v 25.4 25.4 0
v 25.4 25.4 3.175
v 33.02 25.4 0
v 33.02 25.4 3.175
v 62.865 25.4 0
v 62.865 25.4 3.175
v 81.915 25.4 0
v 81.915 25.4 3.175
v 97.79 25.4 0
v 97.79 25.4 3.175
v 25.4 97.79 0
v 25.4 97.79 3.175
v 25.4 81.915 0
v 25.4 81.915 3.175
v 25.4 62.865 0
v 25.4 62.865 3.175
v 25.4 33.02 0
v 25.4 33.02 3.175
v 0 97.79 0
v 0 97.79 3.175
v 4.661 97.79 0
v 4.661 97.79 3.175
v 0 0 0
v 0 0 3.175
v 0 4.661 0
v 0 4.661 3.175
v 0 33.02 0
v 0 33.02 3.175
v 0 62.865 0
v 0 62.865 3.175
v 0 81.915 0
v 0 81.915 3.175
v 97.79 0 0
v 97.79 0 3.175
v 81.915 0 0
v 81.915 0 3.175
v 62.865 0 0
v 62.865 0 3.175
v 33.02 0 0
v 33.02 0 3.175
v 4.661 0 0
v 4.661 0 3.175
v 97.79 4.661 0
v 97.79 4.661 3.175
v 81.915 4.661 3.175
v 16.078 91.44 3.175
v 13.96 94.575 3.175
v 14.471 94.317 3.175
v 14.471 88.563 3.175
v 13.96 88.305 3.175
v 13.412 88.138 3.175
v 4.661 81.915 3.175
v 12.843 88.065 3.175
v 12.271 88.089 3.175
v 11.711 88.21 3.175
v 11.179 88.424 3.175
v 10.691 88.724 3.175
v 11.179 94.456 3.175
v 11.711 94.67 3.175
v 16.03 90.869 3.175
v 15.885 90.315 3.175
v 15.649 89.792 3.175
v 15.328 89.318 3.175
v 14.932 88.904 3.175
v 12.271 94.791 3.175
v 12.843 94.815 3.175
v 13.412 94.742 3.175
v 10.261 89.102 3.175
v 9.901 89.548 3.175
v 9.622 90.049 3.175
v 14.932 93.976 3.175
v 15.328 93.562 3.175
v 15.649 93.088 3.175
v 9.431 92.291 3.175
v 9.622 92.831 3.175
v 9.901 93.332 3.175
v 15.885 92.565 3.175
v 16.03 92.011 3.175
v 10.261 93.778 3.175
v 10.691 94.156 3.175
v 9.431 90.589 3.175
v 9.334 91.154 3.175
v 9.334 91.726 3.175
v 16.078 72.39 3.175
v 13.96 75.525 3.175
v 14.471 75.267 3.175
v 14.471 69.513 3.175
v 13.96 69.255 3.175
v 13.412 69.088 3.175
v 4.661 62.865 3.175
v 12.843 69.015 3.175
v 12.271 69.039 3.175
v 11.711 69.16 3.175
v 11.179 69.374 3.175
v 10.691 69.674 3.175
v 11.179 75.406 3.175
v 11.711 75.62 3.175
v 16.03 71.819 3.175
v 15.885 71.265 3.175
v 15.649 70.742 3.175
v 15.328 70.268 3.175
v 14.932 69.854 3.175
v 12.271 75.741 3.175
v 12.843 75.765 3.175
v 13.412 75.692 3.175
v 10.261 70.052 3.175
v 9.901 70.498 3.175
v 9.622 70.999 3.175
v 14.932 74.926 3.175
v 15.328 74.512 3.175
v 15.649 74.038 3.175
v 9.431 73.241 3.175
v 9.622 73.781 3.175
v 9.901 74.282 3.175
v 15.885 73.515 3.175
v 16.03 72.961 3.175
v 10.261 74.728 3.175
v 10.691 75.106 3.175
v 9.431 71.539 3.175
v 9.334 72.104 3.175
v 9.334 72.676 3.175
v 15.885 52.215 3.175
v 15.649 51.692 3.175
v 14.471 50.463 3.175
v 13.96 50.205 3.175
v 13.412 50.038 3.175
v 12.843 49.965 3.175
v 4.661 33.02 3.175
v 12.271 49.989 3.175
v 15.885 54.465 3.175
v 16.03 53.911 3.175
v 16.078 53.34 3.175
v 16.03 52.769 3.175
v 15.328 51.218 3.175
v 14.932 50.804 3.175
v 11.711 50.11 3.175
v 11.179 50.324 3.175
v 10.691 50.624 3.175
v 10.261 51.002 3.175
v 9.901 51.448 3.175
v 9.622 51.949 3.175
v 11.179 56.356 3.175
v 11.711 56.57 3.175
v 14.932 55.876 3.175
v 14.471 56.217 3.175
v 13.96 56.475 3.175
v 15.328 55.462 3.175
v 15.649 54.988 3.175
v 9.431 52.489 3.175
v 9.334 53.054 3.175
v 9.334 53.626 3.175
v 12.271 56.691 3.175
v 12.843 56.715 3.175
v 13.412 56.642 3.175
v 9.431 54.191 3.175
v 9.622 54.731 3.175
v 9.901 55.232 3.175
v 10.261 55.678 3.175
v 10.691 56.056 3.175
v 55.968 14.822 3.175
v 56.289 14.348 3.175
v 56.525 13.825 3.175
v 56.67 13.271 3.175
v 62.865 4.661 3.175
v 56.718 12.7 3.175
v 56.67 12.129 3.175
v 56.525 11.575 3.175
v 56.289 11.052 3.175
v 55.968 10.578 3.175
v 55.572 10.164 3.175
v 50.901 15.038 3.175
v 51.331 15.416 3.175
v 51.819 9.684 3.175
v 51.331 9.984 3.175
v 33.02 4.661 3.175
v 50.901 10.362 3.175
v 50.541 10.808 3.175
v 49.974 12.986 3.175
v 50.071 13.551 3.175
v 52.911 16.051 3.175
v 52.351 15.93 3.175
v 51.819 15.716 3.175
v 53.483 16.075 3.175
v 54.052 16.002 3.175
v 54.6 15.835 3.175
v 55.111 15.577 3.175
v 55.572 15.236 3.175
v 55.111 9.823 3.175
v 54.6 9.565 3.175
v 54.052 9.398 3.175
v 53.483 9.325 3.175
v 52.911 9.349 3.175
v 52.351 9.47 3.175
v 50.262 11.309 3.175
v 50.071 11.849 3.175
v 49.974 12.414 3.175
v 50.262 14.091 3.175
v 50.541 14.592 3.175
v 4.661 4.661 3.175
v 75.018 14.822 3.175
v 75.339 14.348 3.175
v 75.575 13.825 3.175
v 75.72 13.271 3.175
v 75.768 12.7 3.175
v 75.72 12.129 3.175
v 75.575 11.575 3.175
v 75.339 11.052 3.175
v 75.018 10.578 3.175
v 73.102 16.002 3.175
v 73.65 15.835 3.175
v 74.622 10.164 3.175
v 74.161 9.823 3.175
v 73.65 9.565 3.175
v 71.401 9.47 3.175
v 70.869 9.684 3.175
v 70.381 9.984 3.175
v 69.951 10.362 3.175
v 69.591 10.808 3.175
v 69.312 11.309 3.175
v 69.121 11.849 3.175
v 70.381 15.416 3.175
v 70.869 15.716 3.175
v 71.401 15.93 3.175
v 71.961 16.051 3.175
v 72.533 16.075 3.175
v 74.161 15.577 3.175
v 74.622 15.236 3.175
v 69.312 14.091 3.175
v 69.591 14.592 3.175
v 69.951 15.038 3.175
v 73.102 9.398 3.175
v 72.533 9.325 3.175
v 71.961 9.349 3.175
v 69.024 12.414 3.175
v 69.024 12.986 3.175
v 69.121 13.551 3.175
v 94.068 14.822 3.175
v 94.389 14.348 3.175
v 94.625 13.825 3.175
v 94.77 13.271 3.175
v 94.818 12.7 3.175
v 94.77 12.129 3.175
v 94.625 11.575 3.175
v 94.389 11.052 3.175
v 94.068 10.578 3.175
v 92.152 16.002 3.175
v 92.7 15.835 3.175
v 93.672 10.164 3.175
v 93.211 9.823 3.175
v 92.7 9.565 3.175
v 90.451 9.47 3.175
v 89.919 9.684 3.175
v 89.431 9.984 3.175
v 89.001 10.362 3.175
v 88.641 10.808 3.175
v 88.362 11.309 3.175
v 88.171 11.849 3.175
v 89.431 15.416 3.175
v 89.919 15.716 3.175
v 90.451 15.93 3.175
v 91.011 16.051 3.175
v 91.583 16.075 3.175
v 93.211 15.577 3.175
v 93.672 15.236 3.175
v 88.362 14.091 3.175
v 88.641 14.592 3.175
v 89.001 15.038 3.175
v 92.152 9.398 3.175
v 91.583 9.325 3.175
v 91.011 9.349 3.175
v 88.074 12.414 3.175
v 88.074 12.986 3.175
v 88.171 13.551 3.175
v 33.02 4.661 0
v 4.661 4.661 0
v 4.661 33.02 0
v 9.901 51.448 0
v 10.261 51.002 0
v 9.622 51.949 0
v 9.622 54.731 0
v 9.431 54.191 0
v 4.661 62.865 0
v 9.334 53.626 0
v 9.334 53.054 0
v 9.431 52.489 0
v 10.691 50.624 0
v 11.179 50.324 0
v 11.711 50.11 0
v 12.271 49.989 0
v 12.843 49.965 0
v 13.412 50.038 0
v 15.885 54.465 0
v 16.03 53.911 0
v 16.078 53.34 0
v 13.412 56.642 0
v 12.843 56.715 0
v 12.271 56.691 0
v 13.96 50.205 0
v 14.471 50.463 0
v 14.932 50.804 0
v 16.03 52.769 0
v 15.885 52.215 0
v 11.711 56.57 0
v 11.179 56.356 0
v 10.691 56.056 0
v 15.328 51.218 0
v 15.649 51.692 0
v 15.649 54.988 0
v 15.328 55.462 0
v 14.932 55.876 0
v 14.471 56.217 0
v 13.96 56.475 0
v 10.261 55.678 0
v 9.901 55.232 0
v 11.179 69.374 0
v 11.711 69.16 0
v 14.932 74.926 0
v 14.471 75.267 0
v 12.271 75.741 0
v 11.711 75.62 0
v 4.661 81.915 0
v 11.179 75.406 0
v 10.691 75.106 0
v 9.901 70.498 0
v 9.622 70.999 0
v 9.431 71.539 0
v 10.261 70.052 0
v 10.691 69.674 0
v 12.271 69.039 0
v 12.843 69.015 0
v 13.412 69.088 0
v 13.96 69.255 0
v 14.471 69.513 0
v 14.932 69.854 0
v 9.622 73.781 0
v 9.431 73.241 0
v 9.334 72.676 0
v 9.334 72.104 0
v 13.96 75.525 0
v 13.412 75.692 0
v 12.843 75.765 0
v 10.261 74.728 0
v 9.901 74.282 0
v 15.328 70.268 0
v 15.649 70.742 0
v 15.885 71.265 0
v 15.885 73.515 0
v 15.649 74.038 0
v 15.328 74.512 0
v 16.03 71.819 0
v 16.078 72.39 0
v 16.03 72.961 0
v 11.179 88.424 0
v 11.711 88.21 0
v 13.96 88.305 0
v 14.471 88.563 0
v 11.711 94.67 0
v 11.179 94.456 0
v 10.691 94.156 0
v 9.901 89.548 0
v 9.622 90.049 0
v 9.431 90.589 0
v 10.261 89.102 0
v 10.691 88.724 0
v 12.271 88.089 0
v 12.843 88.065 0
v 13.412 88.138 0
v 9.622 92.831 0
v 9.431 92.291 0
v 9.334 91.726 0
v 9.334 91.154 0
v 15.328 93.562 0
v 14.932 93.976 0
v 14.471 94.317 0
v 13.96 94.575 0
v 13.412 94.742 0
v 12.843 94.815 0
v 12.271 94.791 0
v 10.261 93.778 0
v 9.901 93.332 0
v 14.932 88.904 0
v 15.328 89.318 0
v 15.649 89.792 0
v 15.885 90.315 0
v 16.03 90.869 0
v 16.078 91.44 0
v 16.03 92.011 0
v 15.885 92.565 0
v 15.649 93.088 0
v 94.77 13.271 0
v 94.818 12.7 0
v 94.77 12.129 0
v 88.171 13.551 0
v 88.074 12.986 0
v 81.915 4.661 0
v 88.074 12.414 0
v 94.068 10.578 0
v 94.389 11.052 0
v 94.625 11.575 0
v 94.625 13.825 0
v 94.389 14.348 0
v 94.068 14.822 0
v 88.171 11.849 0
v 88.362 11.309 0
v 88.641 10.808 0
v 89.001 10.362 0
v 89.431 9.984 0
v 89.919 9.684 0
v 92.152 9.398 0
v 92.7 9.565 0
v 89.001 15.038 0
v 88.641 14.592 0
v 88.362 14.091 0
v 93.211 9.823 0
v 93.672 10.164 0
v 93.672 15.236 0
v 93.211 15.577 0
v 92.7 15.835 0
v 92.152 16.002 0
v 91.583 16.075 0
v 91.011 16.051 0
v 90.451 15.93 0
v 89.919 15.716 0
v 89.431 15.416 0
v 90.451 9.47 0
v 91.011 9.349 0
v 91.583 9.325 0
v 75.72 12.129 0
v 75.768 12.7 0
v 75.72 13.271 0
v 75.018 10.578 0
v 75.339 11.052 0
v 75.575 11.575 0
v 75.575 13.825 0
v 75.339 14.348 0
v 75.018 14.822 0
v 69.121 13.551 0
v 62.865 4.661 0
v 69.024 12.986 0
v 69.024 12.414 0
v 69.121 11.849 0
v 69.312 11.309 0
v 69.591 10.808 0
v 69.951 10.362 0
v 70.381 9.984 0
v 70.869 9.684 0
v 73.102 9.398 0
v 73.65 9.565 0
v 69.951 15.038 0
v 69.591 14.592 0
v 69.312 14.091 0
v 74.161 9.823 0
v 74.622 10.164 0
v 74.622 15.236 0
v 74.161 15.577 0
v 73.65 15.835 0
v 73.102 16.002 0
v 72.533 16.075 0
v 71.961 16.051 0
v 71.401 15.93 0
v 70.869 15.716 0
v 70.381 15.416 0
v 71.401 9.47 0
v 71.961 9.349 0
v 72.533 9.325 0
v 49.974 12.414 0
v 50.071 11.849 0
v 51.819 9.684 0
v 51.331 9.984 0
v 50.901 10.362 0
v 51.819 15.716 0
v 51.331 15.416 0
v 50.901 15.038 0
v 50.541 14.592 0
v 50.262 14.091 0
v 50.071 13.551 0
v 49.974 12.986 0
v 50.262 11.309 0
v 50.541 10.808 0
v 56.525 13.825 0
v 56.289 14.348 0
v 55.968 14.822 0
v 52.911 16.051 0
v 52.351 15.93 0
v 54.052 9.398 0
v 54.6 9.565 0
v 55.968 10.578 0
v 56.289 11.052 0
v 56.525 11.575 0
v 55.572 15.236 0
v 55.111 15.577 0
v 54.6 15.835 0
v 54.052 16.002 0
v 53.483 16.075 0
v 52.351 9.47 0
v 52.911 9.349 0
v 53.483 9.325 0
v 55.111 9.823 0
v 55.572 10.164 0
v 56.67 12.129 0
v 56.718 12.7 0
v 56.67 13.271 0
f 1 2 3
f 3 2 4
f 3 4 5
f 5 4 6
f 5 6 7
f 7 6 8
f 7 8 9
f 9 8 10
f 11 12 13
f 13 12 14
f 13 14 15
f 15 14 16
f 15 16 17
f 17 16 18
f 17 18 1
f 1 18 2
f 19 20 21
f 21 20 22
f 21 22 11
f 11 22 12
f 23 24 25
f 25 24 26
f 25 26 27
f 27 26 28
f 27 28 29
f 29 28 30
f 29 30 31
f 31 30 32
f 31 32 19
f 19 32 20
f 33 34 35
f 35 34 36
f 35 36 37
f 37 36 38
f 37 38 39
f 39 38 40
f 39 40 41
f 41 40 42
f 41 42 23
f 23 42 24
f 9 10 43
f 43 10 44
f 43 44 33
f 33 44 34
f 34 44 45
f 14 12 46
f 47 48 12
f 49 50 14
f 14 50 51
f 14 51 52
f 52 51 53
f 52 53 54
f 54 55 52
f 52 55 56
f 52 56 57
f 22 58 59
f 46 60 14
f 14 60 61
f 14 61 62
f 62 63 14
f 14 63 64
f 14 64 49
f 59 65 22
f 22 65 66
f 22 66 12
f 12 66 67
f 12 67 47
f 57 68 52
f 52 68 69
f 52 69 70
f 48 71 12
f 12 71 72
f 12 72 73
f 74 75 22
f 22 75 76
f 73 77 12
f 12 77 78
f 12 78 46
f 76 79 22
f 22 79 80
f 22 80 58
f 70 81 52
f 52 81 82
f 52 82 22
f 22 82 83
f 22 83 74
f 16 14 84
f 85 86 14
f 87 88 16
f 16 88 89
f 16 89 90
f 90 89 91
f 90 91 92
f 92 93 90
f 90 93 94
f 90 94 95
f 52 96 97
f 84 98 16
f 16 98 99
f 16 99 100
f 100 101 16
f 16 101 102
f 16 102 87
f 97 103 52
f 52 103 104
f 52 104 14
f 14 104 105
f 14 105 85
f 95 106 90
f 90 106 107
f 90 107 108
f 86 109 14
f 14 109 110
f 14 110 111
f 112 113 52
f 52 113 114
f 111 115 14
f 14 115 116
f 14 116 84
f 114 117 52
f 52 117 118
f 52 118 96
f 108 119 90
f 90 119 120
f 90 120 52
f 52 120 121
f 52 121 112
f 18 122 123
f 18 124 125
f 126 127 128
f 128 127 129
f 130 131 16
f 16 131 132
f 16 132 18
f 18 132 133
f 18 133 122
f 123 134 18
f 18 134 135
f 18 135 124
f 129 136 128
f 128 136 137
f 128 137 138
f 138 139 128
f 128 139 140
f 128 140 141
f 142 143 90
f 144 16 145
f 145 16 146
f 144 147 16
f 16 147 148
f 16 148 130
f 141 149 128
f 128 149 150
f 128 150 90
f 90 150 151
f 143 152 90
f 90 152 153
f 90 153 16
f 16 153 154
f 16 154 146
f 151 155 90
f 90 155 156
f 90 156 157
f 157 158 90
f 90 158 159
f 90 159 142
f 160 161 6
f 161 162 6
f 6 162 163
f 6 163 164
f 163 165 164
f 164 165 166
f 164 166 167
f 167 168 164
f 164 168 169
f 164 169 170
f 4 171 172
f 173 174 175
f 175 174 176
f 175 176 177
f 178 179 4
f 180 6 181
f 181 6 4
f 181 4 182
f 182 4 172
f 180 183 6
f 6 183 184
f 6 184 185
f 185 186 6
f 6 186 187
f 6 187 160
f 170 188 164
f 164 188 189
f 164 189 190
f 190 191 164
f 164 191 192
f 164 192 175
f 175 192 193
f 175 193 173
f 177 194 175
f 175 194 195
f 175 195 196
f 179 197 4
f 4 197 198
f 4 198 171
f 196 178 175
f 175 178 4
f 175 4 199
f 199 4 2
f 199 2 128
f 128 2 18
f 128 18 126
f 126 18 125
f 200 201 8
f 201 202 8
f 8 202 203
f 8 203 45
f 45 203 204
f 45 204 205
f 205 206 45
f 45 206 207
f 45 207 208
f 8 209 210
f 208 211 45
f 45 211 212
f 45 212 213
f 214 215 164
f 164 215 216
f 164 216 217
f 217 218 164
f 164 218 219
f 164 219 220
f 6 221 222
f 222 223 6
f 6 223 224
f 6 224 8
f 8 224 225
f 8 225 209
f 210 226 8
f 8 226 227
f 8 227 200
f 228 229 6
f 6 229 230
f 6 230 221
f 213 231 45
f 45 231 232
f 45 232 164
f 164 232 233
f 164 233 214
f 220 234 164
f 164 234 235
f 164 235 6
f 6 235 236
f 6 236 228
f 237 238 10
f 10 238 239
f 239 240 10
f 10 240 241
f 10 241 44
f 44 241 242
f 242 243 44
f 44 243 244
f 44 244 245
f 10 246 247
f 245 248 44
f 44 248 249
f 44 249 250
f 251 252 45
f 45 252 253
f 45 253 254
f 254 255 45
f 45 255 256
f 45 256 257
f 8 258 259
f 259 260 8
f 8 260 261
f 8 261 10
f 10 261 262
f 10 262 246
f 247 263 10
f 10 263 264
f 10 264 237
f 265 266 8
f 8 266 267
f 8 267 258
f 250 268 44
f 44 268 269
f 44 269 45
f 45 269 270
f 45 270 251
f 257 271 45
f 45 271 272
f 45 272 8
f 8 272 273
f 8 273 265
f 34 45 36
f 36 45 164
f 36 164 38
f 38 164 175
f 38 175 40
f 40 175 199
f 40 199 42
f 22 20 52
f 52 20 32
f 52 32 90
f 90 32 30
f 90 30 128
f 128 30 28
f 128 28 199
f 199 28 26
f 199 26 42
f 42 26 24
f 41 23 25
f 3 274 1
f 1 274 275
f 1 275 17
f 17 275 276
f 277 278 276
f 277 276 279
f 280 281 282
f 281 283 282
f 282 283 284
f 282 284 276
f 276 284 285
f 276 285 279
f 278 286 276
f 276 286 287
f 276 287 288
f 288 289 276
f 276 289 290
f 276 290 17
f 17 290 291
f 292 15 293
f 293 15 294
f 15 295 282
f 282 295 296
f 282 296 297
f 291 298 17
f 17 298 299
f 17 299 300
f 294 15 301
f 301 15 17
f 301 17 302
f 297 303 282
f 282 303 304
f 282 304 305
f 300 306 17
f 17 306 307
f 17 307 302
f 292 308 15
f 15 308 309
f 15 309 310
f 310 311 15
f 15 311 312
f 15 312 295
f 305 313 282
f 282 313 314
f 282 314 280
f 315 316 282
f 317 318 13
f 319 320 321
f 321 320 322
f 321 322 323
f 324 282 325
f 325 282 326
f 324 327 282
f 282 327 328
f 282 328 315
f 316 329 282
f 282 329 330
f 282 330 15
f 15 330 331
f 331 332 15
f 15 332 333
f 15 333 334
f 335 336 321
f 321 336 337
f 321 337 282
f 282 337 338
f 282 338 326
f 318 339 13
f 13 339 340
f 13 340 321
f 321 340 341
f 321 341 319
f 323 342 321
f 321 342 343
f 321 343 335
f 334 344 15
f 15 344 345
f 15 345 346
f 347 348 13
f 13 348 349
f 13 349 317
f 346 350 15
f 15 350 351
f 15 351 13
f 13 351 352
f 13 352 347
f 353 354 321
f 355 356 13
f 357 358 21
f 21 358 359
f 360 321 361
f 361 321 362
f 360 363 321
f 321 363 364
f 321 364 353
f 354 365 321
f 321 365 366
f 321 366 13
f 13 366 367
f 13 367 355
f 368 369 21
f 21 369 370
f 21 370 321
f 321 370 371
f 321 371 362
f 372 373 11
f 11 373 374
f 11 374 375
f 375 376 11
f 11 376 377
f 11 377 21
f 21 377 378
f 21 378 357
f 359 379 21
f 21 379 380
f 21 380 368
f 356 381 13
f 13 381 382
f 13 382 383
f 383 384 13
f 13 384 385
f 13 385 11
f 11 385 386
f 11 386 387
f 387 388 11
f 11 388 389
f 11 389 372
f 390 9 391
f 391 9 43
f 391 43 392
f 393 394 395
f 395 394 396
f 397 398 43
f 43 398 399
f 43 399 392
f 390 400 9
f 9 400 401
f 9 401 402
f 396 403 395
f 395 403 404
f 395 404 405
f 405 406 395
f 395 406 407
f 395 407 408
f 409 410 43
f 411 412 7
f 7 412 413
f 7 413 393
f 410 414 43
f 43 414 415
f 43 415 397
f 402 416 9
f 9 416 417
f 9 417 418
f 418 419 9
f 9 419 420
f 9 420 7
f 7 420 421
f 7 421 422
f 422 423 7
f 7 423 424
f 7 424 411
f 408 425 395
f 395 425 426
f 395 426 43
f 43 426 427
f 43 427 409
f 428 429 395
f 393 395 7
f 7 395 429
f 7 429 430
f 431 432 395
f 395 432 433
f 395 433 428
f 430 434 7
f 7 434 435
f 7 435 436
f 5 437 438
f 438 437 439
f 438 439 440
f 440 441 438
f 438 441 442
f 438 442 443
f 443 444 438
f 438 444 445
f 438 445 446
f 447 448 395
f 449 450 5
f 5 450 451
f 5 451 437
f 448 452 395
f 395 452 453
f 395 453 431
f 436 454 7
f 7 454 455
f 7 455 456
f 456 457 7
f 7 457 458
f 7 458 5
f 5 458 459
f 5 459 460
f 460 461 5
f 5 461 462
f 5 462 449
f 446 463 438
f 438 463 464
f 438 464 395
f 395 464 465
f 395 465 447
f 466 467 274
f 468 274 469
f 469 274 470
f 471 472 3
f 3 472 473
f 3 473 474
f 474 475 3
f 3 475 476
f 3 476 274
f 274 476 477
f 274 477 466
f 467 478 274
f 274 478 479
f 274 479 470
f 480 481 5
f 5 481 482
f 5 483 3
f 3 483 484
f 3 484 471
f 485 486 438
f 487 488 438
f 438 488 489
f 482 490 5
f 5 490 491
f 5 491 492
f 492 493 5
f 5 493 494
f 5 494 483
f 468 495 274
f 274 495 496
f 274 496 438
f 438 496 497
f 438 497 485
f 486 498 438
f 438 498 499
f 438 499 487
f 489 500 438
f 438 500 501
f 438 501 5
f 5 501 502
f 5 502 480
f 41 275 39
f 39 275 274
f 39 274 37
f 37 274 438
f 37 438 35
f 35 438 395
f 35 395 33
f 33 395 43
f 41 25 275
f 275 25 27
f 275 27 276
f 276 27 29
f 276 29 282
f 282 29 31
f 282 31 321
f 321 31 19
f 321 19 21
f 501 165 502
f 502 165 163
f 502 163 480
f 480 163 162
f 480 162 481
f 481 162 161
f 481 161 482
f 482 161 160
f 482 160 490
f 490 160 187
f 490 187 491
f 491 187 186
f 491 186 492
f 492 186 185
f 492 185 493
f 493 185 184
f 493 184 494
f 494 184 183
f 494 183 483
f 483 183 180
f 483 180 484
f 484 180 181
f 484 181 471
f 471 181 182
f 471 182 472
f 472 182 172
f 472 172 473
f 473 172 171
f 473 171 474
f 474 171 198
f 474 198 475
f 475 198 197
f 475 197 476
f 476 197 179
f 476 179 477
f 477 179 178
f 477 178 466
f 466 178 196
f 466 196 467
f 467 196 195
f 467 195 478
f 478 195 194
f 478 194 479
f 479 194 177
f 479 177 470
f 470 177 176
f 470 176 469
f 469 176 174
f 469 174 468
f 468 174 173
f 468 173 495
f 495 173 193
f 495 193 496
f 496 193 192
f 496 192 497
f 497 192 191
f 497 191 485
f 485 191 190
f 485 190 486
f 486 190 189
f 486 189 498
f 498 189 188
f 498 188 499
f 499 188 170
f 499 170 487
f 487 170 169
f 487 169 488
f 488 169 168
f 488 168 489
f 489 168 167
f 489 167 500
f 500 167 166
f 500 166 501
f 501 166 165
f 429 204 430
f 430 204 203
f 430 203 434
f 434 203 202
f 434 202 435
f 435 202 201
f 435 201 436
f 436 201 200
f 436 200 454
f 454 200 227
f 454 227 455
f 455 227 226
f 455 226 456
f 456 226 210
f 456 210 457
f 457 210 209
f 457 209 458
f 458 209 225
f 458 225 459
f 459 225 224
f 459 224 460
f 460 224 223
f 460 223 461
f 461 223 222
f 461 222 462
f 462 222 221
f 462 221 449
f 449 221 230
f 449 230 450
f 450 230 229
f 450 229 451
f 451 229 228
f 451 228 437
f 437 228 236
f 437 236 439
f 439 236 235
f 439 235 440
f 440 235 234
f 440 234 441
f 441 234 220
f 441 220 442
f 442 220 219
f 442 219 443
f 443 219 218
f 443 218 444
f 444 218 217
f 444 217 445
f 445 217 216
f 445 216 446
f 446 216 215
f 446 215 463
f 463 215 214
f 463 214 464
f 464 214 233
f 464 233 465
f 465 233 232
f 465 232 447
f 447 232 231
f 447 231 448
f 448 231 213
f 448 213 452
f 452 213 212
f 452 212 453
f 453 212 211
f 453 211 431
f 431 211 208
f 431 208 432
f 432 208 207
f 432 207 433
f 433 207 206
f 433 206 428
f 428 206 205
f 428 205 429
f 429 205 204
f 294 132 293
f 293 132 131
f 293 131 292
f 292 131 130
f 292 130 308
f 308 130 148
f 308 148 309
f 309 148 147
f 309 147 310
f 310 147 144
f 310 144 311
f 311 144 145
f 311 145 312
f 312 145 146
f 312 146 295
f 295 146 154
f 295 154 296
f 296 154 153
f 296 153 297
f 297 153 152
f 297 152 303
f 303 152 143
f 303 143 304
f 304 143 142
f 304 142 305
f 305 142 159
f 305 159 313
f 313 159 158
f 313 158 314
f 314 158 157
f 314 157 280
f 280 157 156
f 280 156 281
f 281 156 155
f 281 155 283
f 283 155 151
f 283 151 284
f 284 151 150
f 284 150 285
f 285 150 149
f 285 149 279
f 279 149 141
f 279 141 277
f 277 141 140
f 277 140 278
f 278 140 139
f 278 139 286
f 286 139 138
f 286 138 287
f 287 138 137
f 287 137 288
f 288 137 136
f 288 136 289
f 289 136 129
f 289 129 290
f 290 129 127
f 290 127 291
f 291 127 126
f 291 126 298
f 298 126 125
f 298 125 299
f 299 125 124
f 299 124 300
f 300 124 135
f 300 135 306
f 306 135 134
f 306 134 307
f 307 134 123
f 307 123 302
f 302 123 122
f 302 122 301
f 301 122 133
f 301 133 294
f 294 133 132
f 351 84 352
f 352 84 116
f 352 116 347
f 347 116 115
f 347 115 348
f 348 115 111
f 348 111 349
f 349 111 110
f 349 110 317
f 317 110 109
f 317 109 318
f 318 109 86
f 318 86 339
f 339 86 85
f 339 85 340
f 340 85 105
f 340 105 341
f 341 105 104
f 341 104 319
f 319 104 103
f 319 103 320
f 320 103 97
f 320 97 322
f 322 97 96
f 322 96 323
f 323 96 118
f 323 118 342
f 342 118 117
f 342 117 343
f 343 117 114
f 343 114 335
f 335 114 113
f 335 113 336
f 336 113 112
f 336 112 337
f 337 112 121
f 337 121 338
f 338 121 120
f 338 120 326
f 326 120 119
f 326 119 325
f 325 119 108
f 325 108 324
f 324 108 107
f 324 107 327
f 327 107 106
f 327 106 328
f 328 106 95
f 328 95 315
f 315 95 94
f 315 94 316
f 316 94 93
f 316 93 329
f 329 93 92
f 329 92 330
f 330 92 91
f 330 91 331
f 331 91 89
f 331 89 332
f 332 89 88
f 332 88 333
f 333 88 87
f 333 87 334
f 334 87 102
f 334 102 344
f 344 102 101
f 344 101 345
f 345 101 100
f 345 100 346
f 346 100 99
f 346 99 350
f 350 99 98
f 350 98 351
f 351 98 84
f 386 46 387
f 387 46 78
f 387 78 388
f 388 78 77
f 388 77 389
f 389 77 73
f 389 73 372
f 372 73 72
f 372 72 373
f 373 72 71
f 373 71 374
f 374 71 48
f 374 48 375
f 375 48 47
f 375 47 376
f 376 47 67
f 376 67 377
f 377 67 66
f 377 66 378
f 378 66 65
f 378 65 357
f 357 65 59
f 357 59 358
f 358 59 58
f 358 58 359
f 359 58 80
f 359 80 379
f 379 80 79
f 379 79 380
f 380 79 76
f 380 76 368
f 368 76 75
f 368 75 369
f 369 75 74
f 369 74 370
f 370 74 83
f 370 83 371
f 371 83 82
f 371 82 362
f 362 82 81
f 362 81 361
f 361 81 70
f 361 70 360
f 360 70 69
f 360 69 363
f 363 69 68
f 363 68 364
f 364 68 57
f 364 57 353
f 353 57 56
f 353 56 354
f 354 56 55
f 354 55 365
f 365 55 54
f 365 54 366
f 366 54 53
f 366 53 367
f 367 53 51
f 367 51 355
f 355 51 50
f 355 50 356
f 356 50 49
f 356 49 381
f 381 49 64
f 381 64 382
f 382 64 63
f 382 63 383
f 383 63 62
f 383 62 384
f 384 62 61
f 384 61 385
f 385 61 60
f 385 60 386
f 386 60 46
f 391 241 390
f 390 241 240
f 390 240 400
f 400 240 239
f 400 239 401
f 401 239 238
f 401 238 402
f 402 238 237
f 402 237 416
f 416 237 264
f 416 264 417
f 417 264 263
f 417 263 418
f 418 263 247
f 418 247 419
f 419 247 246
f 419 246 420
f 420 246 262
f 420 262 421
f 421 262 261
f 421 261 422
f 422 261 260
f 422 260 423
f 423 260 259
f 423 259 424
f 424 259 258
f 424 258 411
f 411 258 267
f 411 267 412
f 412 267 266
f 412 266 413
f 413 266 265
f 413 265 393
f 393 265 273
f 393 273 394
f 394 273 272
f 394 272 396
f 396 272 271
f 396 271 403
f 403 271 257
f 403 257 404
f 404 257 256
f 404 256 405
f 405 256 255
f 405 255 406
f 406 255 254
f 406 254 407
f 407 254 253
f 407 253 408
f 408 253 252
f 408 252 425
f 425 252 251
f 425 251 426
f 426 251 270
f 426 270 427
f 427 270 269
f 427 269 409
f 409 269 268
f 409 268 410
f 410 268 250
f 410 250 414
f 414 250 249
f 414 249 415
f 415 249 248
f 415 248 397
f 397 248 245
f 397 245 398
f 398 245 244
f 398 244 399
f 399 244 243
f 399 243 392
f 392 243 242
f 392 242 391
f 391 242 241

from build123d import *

# Parameters (mm, degrees)
BOSS_EXTRUDE1_DEPTH = 3.175
SKETCH2_R           = 3.3782
CUT_EXTRUDE1_DEPTH  = 139.332385308


with BuildPart() as part:
    # Sketch1 → Boss-Extrude1 (new body)
    with BuildSketch(Plane.XY):
        Polygon((0, 0), (0, 97.79), (25.4, 97.79), (25.4, 79.829487758), (25.4, 25.4), (79.829487758, 25.4), (97.79, 25.4), (97.79, 0), align=None)
    extrude(amount=BOSS_EXTRUDE1_DEPTH)

    # Sketch2 → Cut-Extrude1 (cut, through all)
    with BuildSketch(Plane.XY.offset(3.175)):
        with Locations((53.34, 12.7)):
            Circle(SKETCH2_R)
        with Locations((72.39, 12.7)):
            Circle(SKETCH2_R)
        with Locations((12.7, 53.34)):
            Circle(SKETCH2_R)
        with Locations((12.7, 72.39)):
            Circle(SKETCH2_R)
        with Locations((12.7, 91.44)):
            Circle(SKETCH2_R)
        with Locations((91.44, 12.7)):
            Circle(SKETCH2_R)
    extrude(amount=-CUT_EXTRUDE1_DEPTH, mode=Mode.SUBTRACT)


solid = part.part
